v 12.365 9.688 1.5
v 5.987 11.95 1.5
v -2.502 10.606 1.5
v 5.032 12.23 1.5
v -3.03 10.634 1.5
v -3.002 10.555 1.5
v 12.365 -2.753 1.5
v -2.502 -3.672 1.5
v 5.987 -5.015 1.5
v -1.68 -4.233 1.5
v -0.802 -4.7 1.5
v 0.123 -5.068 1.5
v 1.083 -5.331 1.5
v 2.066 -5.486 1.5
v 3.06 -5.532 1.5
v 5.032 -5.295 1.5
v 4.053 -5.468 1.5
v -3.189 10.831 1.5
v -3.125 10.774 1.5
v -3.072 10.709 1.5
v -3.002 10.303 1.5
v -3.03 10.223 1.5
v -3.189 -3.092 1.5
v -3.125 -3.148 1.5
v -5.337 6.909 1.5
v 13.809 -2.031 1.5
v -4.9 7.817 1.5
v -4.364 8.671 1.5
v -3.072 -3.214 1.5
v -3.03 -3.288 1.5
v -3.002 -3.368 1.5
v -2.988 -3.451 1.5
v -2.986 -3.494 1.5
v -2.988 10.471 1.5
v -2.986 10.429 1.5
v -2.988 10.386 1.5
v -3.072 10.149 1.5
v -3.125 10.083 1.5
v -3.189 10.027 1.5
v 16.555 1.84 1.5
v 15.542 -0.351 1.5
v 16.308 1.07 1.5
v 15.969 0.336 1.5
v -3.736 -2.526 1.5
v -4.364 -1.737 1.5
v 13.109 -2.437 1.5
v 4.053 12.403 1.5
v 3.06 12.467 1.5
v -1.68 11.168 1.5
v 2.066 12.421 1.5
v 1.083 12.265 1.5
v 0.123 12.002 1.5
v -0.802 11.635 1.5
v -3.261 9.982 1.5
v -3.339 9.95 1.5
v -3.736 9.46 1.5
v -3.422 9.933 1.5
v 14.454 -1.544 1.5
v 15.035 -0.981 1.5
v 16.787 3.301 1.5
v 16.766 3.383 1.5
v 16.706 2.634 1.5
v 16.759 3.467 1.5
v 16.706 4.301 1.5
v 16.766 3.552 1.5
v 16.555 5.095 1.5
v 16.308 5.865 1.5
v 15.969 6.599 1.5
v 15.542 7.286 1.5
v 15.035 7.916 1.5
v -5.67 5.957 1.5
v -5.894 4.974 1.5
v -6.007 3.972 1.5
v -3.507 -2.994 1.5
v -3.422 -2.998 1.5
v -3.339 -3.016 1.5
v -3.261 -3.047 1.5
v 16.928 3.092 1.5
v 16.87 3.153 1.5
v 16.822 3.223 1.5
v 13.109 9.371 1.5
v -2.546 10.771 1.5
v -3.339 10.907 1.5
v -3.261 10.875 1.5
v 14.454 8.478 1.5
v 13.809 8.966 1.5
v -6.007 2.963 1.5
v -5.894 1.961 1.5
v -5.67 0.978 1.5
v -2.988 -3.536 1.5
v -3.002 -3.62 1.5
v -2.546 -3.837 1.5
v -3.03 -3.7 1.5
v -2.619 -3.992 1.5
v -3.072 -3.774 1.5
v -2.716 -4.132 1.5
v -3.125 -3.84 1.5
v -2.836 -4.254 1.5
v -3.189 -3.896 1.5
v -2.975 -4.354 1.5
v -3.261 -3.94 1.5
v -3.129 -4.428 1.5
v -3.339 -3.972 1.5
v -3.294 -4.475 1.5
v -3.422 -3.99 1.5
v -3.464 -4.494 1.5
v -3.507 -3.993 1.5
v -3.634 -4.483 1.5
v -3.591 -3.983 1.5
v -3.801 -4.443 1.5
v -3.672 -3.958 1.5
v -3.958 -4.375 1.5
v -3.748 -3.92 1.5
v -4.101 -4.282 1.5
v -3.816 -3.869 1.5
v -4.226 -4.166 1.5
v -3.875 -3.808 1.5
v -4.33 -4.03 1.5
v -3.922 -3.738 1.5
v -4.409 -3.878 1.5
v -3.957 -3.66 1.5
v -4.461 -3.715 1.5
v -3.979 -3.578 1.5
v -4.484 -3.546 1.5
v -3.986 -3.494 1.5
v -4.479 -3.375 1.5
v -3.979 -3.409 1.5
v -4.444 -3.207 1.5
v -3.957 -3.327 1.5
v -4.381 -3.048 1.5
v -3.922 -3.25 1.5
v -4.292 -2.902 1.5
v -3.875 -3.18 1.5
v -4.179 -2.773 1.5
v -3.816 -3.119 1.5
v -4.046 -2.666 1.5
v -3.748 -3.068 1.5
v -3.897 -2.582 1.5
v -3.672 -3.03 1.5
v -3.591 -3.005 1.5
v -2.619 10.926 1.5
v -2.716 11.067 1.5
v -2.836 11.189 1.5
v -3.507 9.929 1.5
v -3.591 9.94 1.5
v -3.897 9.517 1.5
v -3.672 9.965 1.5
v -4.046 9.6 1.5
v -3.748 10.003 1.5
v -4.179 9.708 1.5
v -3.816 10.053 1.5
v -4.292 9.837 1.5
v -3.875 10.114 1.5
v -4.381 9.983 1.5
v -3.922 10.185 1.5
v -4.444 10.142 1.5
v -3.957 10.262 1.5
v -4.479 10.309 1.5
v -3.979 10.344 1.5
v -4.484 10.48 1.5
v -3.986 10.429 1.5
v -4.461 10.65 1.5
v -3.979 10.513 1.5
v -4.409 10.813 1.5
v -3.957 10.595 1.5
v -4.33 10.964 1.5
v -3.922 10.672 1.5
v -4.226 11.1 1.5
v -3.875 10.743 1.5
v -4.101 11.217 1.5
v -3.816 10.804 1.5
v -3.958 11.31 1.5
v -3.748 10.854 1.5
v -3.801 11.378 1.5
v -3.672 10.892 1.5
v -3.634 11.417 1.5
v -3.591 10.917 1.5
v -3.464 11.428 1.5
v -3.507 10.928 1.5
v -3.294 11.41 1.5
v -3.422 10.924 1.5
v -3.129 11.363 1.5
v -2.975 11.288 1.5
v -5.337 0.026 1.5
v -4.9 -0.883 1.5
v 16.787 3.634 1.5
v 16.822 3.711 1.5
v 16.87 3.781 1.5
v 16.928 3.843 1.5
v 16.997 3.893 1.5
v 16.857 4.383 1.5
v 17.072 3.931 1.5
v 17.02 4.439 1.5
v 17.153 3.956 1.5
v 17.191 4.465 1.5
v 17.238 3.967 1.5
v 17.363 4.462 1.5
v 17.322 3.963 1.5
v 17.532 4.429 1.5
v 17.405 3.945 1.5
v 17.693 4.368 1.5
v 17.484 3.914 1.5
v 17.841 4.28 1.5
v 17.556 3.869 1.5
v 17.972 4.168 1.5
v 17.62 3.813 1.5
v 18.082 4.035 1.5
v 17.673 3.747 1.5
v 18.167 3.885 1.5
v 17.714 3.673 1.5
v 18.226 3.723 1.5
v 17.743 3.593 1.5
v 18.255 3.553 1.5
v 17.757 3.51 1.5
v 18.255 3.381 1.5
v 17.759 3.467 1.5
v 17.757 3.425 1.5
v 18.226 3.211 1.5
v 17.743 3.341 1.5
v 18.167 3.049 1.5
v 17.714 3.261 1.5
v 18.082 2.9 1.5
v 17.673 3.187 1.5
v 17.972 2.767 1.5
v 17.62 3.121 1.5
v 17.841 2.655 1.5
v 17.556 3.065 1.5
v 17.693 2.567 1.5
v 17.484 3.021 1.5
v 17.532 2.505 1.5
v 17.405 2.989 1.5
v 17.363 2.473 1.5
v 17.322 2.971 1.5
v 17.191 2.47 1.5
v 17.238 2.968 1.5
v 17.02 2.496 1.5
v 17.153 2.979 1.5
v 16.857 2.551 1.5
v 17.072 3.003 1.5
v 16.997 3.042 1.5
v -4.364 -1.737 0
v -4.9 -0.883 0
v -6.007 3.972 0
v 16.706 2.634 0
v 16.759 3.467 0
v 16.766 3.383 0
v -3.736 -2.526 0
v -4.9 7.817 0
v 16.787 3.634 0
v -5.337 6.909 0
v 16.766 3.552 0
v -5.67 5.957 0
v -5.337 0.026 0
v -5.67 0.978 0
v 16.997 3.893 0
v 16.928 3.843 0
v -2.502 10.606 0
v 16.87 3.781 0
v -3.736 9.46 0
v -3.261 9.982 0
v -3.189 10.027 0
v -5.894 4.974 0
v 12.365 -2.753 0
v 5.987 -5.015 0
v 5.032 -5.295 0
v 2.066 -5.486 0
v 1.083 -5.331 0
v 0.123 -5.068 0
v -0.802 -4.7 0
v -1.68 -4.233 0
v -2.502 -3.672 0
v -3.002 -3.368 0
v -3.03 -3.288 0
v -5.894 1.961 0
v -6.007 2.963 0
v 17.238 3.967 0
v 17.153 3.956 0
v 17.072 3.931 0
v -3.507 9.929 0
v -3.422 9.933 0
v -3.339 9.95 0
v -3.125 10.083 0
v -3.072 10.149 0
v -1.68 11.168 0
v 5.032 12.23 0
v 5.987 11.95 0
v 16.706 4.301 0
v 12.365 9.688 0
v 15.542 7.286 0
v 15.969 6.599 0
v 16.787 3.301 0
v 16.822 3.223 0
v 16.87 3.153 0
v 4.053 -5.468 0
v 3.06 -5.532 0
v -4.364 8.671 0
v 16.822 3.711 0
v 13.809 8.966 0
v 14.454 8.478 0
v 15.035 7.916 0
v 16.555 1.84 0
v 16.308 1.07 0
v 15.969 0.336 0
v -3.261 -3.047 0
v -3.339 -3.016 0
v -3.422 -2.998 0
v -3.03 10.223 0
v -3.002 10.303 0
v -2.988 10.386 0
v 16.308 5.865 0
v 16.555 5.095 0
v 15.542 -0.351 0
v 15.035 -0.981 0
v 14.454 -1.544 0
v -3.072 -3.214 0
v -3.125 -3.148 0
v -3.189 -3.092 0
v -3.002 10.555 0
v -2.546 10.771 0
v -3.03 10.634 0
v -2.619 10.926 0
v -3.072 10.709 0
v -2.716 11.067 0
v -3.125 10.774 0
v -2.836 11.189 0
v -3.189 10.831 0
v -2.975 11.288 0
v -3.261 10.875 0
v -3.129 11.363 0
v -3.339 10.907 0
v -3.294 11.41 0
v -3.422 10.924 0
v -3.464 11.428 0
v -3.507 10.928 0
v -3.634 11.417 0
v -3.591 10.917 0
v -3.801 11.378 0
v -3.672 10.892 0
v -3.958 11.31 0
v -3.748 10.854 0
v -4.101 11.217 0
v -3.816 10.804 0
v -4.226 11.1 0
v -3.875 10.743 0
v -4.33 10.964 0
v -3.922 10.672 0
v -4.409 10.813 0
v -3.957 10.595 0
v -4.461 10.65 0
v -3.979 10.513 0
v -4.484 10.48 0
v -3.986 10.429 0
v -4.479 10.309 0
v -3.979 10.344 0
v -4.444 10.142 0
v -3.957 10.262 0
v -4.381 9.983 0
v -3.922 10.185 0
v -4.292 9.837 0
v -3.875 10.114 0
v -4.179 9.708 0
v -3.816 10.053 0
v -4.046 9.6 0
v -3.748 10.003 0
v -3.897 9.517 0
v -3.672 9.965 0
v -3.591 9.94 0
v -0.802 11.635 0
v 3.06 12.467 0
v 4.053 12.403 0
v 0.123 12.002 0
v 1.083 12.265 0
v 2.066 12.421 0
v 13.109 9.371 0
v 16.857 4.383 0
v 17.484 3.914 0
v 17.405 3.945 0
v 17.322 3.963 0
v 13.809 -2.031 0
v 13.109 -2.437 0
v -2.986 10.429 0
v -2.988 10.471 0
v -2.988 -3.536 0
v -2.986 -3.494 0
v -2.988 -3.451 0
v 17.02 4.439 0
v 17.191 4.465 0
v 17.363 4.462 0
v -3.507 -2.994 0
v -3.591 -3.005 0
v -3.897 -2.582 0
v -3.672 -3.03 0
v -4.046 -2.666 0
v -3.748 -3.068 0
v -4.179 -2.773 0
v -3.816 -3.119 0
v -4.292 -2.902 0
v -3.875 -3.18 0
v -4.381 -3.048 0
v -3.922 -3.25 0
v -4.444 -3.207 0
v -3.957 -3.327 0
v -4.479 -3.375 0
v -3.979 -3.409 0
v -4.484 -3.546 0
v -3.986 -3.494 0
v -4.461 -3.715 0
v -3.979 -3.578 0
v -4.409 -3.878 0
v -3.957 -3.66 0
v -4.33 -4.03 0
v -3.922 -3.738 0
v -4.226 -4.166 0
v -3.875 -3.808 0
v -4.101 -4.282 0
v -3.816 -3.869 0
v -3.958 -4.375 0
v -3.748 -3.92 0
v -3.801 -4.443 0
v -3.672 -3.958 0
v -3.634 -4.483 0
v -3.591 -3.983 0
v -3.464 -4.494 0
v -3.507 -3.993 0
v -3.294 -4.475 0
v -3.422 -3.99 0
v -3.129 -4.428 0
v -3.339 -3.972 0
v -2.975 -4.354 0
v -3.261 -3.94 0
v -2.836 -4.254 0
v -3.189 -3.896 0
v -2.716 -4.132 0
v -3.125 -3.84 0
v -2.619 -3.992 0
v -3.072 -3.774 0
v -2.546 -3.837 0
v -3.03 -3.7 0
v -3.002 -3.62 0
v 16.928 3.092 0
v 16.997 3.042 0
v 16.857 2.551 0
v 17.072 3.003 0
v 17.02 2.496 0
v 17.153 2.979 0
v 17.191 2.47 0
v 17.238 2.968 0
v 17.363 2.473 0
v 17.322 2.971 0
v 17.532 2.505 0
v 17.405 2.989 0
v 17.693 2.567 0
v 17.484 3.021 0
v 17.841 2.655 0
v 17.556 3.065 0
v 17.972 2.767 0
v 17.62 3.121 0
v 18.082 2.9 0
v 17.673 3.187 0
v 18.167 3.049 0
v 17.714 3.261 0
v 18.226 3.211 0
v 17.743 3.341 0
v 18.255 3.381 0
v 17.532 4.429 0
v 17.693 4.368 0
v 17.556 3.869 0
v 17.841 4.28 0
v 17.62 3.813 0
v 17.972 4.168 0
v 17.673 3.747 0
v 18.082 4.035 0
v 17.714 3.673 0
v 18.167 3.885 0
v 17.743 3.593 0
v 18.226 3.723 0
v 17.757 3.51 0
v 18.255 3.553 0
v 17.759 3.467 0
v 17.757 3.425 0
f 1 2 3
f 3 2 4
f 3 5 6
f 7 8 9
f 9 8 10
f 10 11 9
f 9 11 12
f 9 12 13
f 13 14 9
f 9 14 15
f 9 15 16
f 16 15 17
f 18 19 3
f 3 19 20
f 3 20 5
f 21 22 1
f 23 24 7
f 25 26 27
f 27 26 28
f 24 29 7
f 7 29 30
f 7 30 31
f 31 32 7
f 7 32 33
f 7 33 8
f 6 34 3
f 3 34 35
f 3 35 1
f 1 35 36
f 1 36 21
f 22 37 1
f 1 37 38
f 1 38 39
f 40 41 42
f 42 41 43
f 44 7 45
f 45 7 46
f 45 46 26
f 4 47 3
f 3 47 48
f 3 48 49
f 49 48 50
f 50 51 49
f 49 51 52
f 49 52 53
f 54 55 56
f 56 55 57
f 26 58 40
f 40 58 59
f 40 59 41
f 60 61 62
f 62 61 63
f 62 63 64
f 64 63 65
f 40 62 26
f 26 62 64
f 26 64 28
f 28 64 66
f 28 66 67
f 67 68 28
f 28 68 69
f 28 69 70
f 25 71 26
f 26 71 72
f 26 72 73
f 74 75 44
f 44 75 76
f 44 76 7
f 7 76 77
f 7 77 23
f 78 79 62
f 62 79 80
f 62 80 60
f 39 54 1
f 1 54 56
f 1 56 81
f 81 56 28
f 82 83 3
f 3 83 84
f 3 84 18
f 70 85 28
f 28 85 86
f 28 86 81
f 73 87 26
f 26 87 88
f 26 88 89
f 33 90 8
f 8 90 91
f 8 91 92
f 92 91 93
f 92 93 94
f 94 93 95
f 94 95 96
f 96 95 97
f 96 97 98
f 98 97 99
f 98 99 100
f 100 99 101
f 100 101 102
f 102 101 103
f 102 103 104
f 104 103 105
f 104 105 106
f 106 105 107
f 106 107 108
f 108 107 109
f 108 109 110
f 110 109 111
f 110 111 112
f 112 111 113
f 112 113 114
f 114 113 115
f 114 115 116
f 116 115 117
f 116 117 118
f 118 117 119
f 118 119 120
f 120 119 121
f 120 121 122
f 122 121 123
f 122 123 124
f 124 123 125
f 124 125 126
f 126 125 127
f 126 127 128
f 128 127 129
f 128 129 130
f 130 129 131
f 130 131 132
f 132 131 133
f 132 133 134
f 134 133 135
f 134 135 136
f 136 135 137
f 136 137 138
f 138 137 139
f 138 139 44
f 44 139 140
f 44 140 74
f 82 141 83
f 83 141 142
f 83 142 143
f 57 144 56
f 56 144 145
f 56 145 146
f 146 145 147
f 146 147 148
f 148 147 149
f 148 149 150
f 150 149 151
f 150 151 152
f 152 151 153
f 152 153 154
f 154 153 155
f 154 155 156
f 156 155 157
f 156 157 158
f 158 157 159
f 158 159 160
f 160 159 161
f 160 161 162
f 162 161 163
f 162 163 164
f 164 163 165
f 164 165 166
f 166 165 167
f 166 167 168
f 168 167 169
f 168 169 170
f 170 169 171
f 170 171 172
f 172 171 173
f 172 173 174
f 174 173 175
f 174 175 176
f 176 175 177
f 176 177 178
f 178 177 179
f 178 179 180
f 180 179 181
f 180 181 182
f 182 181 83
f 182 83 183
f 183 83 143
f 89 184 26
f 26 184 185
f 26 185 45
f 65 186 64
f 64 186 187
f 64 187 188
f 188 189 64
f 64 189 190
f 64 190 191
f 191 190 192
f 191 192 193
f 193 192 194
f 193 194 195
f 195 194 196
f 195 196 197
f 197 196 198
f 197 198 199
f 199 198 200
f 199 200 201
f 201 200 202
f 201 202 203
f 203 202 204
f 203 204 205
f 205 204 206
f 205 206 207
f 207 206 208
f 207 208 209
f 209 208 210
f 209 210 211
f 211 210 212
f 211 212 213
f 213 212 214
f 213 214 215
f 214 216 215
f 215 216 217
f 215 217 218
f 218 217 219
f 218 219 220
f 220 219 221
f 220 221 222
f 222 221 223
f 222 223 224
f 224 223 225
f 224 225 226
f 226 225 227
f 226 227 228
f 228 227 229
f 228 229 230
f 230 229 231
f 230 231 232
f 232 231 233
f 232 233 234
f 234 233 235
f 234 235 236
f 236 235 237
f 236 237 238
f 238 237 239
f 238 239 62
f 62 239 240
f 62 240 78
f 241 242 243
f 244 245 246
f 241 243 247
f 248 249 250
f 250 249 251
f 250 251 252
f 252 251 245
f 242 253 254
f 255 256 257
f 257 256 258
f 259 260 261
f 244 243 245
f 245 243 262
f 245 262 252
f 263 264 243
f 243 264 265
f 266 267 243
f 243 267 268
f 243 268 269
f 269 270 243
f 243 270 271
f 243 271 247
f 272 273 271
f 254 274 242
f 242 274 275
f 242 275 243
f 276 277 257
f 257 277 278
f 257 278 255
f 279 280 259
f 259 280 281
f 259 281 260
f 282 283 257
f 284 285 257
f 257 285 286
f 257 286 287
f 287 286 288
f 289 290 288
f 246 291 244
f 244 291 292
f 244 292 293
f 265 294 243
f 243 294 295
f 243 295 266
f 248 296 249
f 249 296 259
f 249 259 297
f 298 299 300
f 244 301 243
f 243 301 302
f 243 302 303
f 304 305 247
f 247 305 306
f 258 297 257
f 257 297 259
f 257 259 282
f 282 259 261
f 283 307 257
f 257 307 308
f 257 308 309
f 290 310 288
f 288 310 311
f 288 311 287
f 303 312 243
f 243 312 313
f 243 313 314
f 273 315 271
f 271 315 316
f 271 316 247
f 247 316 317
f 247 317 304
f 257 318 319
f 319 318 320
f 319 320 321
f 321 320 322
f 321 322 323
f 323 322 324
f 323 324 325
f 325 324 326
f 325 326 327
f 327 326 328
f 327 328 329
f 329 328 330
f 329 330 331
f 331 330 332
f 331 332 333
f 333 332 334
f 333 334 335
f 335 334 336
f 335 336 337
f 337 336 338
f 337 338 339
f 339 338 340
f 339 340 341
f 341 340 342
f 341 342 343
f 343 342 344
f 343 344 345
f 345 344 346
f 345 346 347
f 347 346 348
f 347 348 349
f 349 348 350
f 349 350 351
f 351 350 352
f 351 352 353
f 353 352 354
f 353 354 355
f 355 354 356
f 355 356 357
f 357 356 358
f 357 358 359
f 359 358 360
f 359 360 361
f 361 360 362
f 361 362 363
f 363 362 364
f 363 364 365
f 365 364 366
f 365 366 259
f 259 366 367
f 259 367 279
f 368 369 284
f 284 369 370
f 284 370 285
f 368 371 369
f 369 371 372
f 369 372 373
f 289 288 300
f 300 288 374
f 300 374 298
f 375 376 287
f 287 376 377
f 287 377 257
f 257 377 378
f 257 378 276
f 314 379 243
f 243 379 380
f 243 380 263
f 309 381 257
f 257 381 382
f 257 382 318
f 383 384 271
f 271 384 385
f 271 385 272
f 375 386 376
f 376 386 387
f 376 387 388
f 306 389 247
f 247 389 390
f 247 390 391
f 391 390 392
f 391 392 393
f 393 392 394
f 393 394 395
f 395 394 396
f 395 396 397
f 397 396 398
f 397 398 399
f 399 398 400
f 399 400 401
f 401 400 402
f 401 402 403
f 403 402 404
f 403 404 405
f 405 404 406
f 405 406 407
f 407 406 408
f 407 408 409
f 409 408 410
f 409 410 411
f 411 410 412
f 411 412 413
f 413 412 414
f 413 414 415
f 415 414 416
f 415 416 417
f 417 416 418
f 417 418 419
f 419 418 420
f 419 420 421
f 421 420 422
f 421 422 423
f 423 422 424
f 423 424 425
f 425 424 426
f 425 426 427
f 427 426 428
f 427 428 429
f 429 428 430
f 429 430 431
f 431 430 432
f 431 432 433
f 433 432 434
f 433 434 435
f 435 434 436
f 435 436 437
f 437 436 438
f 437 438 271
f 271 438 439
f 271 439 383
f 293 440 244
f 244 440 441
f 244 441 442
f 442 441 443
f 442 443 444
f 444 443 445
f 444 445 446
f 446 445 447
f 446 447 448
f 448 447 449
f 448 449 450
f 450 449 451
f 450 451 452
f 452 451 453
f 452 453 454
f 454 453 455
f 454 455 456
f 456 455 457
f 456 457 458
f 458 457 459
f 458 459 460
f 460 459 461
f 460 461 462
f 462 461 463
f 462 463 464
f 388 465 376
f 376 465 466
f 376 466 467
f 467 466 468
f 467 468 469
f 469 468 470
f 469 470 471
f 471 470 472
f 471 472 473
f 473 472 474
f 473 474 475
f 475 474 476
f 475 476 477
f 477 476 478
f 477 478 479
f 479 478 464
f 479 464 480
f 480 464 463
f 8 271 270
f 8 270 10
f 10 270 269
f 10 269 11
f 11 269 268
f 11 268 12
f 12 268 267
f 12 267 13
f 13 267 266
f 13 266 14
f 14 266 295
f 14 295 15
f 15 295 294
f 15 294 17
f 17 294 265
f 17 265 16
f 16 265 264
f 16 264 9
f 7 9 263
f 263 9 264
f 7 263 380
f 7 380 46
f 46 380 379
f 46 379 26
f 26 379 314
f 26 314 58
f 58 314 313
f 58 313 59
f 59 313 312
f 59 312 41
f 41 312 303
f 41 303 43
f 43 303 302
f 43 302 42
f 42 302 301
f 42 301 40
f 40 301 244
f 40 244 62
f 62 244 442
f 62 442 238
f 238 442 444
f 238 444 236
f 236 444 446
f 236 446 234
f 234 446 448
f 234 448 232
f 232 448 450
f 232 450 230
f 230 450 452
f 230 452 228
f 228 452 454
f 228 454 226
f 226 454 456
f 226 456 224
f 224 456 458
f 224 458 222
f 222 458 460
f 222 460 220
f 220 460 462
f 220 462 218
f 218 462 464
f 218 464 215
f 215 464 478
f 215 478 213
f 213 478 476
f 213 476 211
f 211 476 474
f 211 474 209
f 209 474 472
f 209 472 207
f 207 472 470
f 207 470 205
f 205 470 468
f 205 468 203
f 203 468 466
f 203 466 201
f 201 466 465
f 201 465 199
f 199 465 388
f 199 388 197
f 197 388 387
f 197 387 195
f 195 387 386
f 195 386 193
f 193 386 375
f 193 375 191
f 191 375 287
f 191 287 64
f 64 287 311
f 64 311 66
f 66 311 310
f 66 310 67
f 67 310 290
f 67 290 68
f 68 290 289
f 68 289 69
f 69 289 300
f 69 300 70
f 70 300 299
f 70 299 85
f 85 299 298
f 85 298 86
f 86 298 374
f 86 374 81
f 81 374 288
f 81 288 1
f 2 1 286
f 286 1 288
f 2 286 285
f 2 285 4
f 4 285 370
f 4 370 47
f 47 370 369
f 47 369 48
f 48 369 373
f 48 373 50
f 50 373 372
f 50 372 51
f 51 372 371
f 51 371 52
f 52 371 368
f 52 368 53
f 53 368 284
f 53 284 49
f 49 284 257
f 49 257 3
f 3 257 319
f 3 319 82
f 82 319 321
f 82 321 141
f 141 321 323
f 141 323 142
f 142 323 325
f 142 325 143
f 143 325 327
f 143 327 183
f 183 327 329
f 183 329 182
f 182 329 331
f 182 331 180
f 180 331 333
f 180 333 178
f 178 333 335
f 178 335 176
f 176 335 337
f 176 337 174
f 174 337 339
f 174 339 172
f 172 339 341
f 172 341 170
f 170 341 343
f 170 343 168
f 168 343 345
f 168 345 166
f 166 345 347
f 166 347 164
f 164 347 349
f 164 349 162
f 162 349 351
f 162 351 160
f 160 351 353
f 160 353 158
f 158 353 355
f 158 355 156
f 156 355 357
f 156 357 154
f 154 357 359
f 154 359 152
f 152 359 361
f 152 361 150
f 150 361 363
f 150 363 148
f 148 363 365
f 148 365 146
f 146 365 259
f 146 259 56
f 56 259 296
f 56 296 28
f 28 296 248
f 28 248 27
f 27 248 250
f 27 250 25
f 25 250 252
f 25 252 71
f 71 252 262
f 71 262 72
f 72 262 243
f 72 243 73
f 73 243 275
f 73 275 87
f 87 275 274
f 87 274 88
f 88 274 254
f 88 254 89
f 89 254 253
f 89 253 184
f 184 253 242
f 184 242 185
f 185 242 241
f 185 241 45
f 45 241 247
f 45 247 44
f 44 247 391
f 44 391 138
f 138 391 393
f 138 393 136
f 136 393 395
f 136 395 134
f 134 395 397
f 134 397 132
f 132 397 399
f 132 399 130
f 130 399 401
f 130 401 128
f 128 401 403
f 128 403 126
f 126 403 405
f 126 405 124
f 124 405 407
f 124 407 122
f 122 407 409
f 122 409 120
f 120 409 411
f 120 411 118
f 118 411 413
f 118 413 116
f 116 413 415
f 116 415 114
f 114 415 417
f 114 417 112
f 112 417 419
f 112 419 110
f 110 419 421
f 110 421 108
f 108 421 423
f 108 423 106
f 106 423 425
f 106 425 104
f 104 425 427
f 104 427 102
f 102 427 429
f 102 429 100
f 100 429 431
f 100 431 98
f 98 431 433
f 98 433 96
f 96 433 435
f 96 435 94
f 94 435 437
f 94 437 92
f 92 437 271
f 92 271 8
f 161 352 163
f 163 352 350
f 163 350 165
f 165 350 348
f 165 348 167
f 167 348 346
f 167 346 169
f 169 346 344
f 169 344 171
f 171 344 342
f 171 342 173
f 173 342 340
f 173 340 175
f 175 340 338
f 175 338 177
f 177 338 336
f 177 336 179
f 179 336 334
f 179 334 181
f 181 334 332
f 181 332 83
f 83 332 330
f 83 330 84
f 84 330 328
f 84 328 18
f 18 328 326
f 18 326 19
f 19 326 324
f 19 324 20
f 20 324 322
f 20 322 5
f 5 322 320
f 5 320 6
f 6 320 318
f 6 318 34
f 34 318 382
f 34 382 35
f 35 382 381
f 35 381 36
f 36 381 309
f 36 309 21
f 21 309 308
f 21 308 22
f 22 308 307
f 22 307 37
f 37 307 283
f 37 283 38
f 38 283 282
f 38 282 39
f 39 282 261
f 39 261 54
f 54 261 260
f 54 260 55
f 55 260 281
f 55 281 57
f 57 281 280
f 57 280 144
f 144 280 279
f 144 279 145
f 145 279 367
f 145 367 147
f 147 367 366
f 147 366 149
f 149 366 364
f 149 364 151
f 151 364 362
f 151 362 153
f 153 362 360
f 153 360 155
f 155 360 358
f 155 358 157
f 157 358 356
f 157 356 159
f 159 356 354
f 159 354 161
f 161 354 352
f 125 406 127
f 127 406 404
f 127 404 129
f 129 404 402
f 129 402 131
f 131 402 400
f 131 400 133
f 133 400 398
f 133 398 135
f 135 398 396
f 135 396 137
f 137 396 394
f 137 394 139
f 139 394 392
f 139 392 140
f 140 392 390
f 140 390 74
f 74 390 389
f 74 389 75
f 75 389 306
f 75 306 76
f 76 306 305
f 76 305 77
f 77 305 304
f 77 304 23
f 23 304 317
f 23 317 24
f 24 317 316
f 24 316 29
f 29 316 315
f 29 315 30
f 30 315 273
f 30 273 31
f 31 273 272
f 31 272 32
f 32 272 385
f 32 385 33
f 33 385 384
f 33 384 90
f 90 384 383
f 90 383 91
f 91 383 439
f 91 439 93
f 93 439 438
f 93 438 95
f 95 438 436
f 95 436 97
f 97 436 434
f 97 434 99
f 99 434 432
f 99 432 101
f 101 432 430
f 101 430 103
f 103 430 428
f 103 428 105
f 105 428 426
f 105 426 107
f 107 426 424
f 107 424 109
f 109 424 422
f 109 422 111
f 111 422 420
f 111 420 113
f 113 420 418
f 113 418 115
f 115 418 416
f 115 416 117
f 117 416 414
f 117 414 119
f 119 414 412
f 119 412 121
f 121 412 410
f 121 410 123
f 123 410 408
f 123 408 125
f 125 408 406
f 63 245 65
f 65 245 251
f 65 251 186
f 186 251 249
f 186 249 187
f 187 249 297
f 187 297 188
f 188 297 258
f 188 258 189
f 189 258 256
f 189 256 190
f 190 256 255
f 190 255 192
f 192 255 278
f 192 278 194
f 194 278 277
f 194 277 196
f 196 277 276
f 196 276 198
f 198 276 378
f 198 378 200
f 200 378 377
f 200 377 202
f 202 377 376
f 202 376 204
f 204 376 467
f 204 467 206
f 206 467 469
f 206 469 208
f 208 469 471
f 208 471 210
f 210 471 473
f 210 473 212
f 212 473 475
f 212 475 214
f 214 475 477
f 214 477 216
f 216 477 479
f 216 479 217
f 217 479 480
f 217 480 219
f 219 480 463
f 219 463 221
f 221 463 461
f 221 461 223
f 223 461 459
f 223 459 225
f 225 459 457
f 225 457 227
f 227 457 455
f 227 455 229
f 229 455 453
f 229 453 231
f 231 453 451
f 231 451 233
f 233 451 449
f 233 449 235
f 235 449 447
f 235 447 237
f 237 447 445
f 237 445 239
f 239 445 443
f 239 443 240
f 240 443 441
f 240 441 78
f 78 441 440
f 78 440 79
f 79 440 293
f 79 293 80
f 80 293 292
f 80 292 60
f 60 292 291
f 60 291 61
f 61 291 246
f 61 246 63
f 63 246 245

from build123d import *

# Parameters (mm, degrees)
SKETCH1_R           = 0.5
BOSS_EXTRUDE1_DEPTH = 1.5


with BuildPart() as part:
    # Sketch1 → Boss-Extrude1 (new body)
    with BuildSketch(Plane.XY):
        with BuildLine():
            Line((12.364948684, 9.687701301), (5.987177096, 11.949653903))
            ThreePointArc((5.987177096, 11.949653903), (1.571990001, 12.356697641), (-2.501744354, 10.606197685))
            ThreePointArc((-2.501744354, 10.606197685), (-4.166324297, 11.161284148), (-3.73571139, 9.4602492))
            ThreePointArc((-3.73571139, 9.4602492), (-6.02117945, 3.467331645), (-3.73571139, -2.525585911))
            ThreePointArc((-3.73571139, -2.525585911), (-4.166324297, -4.226620858), (-2.501744354, -3.671534395))
            ThreePointArc((-2.501744354, -3.671534395), (1.571990001, -5.422034351), (5.987177096, -5.014990613))
            Line((5.987177096, -5.014990613), (12.364948684, -2.753038011))
            ThreePointArc((12.364948684, -2.753038011), (15.297909656, -0.673895607), (16.706003649, 2.634028895))
            ThreePointArc((16.706003649, 2.634028895), (18.25882055, 3.467331645), (16.706003649, 4.300634395))
            ThreePointArc((16.706003649, 4.300634395), (15.297909656, 7.608558897), (12.364948684, 9.687701301))
        make_face()
        with Locations((-3.485834311, 10.428526767)):
            Circle(SKETCH1_R, mode=Mode.SUBTRACT)
        with Locations((-3.485834311, -3.493863477)):
            Circle(SKETCH1_R, mode=Mode.SUBTRACT)
        with Locations((17.25882055, 3.467331645)):
            Circle(SKETCH1_R, mode=Mode.SUBTRACT)
    extrude(amount=BOSS_EXTRUDE1_DEPTH)


solid = part.part
